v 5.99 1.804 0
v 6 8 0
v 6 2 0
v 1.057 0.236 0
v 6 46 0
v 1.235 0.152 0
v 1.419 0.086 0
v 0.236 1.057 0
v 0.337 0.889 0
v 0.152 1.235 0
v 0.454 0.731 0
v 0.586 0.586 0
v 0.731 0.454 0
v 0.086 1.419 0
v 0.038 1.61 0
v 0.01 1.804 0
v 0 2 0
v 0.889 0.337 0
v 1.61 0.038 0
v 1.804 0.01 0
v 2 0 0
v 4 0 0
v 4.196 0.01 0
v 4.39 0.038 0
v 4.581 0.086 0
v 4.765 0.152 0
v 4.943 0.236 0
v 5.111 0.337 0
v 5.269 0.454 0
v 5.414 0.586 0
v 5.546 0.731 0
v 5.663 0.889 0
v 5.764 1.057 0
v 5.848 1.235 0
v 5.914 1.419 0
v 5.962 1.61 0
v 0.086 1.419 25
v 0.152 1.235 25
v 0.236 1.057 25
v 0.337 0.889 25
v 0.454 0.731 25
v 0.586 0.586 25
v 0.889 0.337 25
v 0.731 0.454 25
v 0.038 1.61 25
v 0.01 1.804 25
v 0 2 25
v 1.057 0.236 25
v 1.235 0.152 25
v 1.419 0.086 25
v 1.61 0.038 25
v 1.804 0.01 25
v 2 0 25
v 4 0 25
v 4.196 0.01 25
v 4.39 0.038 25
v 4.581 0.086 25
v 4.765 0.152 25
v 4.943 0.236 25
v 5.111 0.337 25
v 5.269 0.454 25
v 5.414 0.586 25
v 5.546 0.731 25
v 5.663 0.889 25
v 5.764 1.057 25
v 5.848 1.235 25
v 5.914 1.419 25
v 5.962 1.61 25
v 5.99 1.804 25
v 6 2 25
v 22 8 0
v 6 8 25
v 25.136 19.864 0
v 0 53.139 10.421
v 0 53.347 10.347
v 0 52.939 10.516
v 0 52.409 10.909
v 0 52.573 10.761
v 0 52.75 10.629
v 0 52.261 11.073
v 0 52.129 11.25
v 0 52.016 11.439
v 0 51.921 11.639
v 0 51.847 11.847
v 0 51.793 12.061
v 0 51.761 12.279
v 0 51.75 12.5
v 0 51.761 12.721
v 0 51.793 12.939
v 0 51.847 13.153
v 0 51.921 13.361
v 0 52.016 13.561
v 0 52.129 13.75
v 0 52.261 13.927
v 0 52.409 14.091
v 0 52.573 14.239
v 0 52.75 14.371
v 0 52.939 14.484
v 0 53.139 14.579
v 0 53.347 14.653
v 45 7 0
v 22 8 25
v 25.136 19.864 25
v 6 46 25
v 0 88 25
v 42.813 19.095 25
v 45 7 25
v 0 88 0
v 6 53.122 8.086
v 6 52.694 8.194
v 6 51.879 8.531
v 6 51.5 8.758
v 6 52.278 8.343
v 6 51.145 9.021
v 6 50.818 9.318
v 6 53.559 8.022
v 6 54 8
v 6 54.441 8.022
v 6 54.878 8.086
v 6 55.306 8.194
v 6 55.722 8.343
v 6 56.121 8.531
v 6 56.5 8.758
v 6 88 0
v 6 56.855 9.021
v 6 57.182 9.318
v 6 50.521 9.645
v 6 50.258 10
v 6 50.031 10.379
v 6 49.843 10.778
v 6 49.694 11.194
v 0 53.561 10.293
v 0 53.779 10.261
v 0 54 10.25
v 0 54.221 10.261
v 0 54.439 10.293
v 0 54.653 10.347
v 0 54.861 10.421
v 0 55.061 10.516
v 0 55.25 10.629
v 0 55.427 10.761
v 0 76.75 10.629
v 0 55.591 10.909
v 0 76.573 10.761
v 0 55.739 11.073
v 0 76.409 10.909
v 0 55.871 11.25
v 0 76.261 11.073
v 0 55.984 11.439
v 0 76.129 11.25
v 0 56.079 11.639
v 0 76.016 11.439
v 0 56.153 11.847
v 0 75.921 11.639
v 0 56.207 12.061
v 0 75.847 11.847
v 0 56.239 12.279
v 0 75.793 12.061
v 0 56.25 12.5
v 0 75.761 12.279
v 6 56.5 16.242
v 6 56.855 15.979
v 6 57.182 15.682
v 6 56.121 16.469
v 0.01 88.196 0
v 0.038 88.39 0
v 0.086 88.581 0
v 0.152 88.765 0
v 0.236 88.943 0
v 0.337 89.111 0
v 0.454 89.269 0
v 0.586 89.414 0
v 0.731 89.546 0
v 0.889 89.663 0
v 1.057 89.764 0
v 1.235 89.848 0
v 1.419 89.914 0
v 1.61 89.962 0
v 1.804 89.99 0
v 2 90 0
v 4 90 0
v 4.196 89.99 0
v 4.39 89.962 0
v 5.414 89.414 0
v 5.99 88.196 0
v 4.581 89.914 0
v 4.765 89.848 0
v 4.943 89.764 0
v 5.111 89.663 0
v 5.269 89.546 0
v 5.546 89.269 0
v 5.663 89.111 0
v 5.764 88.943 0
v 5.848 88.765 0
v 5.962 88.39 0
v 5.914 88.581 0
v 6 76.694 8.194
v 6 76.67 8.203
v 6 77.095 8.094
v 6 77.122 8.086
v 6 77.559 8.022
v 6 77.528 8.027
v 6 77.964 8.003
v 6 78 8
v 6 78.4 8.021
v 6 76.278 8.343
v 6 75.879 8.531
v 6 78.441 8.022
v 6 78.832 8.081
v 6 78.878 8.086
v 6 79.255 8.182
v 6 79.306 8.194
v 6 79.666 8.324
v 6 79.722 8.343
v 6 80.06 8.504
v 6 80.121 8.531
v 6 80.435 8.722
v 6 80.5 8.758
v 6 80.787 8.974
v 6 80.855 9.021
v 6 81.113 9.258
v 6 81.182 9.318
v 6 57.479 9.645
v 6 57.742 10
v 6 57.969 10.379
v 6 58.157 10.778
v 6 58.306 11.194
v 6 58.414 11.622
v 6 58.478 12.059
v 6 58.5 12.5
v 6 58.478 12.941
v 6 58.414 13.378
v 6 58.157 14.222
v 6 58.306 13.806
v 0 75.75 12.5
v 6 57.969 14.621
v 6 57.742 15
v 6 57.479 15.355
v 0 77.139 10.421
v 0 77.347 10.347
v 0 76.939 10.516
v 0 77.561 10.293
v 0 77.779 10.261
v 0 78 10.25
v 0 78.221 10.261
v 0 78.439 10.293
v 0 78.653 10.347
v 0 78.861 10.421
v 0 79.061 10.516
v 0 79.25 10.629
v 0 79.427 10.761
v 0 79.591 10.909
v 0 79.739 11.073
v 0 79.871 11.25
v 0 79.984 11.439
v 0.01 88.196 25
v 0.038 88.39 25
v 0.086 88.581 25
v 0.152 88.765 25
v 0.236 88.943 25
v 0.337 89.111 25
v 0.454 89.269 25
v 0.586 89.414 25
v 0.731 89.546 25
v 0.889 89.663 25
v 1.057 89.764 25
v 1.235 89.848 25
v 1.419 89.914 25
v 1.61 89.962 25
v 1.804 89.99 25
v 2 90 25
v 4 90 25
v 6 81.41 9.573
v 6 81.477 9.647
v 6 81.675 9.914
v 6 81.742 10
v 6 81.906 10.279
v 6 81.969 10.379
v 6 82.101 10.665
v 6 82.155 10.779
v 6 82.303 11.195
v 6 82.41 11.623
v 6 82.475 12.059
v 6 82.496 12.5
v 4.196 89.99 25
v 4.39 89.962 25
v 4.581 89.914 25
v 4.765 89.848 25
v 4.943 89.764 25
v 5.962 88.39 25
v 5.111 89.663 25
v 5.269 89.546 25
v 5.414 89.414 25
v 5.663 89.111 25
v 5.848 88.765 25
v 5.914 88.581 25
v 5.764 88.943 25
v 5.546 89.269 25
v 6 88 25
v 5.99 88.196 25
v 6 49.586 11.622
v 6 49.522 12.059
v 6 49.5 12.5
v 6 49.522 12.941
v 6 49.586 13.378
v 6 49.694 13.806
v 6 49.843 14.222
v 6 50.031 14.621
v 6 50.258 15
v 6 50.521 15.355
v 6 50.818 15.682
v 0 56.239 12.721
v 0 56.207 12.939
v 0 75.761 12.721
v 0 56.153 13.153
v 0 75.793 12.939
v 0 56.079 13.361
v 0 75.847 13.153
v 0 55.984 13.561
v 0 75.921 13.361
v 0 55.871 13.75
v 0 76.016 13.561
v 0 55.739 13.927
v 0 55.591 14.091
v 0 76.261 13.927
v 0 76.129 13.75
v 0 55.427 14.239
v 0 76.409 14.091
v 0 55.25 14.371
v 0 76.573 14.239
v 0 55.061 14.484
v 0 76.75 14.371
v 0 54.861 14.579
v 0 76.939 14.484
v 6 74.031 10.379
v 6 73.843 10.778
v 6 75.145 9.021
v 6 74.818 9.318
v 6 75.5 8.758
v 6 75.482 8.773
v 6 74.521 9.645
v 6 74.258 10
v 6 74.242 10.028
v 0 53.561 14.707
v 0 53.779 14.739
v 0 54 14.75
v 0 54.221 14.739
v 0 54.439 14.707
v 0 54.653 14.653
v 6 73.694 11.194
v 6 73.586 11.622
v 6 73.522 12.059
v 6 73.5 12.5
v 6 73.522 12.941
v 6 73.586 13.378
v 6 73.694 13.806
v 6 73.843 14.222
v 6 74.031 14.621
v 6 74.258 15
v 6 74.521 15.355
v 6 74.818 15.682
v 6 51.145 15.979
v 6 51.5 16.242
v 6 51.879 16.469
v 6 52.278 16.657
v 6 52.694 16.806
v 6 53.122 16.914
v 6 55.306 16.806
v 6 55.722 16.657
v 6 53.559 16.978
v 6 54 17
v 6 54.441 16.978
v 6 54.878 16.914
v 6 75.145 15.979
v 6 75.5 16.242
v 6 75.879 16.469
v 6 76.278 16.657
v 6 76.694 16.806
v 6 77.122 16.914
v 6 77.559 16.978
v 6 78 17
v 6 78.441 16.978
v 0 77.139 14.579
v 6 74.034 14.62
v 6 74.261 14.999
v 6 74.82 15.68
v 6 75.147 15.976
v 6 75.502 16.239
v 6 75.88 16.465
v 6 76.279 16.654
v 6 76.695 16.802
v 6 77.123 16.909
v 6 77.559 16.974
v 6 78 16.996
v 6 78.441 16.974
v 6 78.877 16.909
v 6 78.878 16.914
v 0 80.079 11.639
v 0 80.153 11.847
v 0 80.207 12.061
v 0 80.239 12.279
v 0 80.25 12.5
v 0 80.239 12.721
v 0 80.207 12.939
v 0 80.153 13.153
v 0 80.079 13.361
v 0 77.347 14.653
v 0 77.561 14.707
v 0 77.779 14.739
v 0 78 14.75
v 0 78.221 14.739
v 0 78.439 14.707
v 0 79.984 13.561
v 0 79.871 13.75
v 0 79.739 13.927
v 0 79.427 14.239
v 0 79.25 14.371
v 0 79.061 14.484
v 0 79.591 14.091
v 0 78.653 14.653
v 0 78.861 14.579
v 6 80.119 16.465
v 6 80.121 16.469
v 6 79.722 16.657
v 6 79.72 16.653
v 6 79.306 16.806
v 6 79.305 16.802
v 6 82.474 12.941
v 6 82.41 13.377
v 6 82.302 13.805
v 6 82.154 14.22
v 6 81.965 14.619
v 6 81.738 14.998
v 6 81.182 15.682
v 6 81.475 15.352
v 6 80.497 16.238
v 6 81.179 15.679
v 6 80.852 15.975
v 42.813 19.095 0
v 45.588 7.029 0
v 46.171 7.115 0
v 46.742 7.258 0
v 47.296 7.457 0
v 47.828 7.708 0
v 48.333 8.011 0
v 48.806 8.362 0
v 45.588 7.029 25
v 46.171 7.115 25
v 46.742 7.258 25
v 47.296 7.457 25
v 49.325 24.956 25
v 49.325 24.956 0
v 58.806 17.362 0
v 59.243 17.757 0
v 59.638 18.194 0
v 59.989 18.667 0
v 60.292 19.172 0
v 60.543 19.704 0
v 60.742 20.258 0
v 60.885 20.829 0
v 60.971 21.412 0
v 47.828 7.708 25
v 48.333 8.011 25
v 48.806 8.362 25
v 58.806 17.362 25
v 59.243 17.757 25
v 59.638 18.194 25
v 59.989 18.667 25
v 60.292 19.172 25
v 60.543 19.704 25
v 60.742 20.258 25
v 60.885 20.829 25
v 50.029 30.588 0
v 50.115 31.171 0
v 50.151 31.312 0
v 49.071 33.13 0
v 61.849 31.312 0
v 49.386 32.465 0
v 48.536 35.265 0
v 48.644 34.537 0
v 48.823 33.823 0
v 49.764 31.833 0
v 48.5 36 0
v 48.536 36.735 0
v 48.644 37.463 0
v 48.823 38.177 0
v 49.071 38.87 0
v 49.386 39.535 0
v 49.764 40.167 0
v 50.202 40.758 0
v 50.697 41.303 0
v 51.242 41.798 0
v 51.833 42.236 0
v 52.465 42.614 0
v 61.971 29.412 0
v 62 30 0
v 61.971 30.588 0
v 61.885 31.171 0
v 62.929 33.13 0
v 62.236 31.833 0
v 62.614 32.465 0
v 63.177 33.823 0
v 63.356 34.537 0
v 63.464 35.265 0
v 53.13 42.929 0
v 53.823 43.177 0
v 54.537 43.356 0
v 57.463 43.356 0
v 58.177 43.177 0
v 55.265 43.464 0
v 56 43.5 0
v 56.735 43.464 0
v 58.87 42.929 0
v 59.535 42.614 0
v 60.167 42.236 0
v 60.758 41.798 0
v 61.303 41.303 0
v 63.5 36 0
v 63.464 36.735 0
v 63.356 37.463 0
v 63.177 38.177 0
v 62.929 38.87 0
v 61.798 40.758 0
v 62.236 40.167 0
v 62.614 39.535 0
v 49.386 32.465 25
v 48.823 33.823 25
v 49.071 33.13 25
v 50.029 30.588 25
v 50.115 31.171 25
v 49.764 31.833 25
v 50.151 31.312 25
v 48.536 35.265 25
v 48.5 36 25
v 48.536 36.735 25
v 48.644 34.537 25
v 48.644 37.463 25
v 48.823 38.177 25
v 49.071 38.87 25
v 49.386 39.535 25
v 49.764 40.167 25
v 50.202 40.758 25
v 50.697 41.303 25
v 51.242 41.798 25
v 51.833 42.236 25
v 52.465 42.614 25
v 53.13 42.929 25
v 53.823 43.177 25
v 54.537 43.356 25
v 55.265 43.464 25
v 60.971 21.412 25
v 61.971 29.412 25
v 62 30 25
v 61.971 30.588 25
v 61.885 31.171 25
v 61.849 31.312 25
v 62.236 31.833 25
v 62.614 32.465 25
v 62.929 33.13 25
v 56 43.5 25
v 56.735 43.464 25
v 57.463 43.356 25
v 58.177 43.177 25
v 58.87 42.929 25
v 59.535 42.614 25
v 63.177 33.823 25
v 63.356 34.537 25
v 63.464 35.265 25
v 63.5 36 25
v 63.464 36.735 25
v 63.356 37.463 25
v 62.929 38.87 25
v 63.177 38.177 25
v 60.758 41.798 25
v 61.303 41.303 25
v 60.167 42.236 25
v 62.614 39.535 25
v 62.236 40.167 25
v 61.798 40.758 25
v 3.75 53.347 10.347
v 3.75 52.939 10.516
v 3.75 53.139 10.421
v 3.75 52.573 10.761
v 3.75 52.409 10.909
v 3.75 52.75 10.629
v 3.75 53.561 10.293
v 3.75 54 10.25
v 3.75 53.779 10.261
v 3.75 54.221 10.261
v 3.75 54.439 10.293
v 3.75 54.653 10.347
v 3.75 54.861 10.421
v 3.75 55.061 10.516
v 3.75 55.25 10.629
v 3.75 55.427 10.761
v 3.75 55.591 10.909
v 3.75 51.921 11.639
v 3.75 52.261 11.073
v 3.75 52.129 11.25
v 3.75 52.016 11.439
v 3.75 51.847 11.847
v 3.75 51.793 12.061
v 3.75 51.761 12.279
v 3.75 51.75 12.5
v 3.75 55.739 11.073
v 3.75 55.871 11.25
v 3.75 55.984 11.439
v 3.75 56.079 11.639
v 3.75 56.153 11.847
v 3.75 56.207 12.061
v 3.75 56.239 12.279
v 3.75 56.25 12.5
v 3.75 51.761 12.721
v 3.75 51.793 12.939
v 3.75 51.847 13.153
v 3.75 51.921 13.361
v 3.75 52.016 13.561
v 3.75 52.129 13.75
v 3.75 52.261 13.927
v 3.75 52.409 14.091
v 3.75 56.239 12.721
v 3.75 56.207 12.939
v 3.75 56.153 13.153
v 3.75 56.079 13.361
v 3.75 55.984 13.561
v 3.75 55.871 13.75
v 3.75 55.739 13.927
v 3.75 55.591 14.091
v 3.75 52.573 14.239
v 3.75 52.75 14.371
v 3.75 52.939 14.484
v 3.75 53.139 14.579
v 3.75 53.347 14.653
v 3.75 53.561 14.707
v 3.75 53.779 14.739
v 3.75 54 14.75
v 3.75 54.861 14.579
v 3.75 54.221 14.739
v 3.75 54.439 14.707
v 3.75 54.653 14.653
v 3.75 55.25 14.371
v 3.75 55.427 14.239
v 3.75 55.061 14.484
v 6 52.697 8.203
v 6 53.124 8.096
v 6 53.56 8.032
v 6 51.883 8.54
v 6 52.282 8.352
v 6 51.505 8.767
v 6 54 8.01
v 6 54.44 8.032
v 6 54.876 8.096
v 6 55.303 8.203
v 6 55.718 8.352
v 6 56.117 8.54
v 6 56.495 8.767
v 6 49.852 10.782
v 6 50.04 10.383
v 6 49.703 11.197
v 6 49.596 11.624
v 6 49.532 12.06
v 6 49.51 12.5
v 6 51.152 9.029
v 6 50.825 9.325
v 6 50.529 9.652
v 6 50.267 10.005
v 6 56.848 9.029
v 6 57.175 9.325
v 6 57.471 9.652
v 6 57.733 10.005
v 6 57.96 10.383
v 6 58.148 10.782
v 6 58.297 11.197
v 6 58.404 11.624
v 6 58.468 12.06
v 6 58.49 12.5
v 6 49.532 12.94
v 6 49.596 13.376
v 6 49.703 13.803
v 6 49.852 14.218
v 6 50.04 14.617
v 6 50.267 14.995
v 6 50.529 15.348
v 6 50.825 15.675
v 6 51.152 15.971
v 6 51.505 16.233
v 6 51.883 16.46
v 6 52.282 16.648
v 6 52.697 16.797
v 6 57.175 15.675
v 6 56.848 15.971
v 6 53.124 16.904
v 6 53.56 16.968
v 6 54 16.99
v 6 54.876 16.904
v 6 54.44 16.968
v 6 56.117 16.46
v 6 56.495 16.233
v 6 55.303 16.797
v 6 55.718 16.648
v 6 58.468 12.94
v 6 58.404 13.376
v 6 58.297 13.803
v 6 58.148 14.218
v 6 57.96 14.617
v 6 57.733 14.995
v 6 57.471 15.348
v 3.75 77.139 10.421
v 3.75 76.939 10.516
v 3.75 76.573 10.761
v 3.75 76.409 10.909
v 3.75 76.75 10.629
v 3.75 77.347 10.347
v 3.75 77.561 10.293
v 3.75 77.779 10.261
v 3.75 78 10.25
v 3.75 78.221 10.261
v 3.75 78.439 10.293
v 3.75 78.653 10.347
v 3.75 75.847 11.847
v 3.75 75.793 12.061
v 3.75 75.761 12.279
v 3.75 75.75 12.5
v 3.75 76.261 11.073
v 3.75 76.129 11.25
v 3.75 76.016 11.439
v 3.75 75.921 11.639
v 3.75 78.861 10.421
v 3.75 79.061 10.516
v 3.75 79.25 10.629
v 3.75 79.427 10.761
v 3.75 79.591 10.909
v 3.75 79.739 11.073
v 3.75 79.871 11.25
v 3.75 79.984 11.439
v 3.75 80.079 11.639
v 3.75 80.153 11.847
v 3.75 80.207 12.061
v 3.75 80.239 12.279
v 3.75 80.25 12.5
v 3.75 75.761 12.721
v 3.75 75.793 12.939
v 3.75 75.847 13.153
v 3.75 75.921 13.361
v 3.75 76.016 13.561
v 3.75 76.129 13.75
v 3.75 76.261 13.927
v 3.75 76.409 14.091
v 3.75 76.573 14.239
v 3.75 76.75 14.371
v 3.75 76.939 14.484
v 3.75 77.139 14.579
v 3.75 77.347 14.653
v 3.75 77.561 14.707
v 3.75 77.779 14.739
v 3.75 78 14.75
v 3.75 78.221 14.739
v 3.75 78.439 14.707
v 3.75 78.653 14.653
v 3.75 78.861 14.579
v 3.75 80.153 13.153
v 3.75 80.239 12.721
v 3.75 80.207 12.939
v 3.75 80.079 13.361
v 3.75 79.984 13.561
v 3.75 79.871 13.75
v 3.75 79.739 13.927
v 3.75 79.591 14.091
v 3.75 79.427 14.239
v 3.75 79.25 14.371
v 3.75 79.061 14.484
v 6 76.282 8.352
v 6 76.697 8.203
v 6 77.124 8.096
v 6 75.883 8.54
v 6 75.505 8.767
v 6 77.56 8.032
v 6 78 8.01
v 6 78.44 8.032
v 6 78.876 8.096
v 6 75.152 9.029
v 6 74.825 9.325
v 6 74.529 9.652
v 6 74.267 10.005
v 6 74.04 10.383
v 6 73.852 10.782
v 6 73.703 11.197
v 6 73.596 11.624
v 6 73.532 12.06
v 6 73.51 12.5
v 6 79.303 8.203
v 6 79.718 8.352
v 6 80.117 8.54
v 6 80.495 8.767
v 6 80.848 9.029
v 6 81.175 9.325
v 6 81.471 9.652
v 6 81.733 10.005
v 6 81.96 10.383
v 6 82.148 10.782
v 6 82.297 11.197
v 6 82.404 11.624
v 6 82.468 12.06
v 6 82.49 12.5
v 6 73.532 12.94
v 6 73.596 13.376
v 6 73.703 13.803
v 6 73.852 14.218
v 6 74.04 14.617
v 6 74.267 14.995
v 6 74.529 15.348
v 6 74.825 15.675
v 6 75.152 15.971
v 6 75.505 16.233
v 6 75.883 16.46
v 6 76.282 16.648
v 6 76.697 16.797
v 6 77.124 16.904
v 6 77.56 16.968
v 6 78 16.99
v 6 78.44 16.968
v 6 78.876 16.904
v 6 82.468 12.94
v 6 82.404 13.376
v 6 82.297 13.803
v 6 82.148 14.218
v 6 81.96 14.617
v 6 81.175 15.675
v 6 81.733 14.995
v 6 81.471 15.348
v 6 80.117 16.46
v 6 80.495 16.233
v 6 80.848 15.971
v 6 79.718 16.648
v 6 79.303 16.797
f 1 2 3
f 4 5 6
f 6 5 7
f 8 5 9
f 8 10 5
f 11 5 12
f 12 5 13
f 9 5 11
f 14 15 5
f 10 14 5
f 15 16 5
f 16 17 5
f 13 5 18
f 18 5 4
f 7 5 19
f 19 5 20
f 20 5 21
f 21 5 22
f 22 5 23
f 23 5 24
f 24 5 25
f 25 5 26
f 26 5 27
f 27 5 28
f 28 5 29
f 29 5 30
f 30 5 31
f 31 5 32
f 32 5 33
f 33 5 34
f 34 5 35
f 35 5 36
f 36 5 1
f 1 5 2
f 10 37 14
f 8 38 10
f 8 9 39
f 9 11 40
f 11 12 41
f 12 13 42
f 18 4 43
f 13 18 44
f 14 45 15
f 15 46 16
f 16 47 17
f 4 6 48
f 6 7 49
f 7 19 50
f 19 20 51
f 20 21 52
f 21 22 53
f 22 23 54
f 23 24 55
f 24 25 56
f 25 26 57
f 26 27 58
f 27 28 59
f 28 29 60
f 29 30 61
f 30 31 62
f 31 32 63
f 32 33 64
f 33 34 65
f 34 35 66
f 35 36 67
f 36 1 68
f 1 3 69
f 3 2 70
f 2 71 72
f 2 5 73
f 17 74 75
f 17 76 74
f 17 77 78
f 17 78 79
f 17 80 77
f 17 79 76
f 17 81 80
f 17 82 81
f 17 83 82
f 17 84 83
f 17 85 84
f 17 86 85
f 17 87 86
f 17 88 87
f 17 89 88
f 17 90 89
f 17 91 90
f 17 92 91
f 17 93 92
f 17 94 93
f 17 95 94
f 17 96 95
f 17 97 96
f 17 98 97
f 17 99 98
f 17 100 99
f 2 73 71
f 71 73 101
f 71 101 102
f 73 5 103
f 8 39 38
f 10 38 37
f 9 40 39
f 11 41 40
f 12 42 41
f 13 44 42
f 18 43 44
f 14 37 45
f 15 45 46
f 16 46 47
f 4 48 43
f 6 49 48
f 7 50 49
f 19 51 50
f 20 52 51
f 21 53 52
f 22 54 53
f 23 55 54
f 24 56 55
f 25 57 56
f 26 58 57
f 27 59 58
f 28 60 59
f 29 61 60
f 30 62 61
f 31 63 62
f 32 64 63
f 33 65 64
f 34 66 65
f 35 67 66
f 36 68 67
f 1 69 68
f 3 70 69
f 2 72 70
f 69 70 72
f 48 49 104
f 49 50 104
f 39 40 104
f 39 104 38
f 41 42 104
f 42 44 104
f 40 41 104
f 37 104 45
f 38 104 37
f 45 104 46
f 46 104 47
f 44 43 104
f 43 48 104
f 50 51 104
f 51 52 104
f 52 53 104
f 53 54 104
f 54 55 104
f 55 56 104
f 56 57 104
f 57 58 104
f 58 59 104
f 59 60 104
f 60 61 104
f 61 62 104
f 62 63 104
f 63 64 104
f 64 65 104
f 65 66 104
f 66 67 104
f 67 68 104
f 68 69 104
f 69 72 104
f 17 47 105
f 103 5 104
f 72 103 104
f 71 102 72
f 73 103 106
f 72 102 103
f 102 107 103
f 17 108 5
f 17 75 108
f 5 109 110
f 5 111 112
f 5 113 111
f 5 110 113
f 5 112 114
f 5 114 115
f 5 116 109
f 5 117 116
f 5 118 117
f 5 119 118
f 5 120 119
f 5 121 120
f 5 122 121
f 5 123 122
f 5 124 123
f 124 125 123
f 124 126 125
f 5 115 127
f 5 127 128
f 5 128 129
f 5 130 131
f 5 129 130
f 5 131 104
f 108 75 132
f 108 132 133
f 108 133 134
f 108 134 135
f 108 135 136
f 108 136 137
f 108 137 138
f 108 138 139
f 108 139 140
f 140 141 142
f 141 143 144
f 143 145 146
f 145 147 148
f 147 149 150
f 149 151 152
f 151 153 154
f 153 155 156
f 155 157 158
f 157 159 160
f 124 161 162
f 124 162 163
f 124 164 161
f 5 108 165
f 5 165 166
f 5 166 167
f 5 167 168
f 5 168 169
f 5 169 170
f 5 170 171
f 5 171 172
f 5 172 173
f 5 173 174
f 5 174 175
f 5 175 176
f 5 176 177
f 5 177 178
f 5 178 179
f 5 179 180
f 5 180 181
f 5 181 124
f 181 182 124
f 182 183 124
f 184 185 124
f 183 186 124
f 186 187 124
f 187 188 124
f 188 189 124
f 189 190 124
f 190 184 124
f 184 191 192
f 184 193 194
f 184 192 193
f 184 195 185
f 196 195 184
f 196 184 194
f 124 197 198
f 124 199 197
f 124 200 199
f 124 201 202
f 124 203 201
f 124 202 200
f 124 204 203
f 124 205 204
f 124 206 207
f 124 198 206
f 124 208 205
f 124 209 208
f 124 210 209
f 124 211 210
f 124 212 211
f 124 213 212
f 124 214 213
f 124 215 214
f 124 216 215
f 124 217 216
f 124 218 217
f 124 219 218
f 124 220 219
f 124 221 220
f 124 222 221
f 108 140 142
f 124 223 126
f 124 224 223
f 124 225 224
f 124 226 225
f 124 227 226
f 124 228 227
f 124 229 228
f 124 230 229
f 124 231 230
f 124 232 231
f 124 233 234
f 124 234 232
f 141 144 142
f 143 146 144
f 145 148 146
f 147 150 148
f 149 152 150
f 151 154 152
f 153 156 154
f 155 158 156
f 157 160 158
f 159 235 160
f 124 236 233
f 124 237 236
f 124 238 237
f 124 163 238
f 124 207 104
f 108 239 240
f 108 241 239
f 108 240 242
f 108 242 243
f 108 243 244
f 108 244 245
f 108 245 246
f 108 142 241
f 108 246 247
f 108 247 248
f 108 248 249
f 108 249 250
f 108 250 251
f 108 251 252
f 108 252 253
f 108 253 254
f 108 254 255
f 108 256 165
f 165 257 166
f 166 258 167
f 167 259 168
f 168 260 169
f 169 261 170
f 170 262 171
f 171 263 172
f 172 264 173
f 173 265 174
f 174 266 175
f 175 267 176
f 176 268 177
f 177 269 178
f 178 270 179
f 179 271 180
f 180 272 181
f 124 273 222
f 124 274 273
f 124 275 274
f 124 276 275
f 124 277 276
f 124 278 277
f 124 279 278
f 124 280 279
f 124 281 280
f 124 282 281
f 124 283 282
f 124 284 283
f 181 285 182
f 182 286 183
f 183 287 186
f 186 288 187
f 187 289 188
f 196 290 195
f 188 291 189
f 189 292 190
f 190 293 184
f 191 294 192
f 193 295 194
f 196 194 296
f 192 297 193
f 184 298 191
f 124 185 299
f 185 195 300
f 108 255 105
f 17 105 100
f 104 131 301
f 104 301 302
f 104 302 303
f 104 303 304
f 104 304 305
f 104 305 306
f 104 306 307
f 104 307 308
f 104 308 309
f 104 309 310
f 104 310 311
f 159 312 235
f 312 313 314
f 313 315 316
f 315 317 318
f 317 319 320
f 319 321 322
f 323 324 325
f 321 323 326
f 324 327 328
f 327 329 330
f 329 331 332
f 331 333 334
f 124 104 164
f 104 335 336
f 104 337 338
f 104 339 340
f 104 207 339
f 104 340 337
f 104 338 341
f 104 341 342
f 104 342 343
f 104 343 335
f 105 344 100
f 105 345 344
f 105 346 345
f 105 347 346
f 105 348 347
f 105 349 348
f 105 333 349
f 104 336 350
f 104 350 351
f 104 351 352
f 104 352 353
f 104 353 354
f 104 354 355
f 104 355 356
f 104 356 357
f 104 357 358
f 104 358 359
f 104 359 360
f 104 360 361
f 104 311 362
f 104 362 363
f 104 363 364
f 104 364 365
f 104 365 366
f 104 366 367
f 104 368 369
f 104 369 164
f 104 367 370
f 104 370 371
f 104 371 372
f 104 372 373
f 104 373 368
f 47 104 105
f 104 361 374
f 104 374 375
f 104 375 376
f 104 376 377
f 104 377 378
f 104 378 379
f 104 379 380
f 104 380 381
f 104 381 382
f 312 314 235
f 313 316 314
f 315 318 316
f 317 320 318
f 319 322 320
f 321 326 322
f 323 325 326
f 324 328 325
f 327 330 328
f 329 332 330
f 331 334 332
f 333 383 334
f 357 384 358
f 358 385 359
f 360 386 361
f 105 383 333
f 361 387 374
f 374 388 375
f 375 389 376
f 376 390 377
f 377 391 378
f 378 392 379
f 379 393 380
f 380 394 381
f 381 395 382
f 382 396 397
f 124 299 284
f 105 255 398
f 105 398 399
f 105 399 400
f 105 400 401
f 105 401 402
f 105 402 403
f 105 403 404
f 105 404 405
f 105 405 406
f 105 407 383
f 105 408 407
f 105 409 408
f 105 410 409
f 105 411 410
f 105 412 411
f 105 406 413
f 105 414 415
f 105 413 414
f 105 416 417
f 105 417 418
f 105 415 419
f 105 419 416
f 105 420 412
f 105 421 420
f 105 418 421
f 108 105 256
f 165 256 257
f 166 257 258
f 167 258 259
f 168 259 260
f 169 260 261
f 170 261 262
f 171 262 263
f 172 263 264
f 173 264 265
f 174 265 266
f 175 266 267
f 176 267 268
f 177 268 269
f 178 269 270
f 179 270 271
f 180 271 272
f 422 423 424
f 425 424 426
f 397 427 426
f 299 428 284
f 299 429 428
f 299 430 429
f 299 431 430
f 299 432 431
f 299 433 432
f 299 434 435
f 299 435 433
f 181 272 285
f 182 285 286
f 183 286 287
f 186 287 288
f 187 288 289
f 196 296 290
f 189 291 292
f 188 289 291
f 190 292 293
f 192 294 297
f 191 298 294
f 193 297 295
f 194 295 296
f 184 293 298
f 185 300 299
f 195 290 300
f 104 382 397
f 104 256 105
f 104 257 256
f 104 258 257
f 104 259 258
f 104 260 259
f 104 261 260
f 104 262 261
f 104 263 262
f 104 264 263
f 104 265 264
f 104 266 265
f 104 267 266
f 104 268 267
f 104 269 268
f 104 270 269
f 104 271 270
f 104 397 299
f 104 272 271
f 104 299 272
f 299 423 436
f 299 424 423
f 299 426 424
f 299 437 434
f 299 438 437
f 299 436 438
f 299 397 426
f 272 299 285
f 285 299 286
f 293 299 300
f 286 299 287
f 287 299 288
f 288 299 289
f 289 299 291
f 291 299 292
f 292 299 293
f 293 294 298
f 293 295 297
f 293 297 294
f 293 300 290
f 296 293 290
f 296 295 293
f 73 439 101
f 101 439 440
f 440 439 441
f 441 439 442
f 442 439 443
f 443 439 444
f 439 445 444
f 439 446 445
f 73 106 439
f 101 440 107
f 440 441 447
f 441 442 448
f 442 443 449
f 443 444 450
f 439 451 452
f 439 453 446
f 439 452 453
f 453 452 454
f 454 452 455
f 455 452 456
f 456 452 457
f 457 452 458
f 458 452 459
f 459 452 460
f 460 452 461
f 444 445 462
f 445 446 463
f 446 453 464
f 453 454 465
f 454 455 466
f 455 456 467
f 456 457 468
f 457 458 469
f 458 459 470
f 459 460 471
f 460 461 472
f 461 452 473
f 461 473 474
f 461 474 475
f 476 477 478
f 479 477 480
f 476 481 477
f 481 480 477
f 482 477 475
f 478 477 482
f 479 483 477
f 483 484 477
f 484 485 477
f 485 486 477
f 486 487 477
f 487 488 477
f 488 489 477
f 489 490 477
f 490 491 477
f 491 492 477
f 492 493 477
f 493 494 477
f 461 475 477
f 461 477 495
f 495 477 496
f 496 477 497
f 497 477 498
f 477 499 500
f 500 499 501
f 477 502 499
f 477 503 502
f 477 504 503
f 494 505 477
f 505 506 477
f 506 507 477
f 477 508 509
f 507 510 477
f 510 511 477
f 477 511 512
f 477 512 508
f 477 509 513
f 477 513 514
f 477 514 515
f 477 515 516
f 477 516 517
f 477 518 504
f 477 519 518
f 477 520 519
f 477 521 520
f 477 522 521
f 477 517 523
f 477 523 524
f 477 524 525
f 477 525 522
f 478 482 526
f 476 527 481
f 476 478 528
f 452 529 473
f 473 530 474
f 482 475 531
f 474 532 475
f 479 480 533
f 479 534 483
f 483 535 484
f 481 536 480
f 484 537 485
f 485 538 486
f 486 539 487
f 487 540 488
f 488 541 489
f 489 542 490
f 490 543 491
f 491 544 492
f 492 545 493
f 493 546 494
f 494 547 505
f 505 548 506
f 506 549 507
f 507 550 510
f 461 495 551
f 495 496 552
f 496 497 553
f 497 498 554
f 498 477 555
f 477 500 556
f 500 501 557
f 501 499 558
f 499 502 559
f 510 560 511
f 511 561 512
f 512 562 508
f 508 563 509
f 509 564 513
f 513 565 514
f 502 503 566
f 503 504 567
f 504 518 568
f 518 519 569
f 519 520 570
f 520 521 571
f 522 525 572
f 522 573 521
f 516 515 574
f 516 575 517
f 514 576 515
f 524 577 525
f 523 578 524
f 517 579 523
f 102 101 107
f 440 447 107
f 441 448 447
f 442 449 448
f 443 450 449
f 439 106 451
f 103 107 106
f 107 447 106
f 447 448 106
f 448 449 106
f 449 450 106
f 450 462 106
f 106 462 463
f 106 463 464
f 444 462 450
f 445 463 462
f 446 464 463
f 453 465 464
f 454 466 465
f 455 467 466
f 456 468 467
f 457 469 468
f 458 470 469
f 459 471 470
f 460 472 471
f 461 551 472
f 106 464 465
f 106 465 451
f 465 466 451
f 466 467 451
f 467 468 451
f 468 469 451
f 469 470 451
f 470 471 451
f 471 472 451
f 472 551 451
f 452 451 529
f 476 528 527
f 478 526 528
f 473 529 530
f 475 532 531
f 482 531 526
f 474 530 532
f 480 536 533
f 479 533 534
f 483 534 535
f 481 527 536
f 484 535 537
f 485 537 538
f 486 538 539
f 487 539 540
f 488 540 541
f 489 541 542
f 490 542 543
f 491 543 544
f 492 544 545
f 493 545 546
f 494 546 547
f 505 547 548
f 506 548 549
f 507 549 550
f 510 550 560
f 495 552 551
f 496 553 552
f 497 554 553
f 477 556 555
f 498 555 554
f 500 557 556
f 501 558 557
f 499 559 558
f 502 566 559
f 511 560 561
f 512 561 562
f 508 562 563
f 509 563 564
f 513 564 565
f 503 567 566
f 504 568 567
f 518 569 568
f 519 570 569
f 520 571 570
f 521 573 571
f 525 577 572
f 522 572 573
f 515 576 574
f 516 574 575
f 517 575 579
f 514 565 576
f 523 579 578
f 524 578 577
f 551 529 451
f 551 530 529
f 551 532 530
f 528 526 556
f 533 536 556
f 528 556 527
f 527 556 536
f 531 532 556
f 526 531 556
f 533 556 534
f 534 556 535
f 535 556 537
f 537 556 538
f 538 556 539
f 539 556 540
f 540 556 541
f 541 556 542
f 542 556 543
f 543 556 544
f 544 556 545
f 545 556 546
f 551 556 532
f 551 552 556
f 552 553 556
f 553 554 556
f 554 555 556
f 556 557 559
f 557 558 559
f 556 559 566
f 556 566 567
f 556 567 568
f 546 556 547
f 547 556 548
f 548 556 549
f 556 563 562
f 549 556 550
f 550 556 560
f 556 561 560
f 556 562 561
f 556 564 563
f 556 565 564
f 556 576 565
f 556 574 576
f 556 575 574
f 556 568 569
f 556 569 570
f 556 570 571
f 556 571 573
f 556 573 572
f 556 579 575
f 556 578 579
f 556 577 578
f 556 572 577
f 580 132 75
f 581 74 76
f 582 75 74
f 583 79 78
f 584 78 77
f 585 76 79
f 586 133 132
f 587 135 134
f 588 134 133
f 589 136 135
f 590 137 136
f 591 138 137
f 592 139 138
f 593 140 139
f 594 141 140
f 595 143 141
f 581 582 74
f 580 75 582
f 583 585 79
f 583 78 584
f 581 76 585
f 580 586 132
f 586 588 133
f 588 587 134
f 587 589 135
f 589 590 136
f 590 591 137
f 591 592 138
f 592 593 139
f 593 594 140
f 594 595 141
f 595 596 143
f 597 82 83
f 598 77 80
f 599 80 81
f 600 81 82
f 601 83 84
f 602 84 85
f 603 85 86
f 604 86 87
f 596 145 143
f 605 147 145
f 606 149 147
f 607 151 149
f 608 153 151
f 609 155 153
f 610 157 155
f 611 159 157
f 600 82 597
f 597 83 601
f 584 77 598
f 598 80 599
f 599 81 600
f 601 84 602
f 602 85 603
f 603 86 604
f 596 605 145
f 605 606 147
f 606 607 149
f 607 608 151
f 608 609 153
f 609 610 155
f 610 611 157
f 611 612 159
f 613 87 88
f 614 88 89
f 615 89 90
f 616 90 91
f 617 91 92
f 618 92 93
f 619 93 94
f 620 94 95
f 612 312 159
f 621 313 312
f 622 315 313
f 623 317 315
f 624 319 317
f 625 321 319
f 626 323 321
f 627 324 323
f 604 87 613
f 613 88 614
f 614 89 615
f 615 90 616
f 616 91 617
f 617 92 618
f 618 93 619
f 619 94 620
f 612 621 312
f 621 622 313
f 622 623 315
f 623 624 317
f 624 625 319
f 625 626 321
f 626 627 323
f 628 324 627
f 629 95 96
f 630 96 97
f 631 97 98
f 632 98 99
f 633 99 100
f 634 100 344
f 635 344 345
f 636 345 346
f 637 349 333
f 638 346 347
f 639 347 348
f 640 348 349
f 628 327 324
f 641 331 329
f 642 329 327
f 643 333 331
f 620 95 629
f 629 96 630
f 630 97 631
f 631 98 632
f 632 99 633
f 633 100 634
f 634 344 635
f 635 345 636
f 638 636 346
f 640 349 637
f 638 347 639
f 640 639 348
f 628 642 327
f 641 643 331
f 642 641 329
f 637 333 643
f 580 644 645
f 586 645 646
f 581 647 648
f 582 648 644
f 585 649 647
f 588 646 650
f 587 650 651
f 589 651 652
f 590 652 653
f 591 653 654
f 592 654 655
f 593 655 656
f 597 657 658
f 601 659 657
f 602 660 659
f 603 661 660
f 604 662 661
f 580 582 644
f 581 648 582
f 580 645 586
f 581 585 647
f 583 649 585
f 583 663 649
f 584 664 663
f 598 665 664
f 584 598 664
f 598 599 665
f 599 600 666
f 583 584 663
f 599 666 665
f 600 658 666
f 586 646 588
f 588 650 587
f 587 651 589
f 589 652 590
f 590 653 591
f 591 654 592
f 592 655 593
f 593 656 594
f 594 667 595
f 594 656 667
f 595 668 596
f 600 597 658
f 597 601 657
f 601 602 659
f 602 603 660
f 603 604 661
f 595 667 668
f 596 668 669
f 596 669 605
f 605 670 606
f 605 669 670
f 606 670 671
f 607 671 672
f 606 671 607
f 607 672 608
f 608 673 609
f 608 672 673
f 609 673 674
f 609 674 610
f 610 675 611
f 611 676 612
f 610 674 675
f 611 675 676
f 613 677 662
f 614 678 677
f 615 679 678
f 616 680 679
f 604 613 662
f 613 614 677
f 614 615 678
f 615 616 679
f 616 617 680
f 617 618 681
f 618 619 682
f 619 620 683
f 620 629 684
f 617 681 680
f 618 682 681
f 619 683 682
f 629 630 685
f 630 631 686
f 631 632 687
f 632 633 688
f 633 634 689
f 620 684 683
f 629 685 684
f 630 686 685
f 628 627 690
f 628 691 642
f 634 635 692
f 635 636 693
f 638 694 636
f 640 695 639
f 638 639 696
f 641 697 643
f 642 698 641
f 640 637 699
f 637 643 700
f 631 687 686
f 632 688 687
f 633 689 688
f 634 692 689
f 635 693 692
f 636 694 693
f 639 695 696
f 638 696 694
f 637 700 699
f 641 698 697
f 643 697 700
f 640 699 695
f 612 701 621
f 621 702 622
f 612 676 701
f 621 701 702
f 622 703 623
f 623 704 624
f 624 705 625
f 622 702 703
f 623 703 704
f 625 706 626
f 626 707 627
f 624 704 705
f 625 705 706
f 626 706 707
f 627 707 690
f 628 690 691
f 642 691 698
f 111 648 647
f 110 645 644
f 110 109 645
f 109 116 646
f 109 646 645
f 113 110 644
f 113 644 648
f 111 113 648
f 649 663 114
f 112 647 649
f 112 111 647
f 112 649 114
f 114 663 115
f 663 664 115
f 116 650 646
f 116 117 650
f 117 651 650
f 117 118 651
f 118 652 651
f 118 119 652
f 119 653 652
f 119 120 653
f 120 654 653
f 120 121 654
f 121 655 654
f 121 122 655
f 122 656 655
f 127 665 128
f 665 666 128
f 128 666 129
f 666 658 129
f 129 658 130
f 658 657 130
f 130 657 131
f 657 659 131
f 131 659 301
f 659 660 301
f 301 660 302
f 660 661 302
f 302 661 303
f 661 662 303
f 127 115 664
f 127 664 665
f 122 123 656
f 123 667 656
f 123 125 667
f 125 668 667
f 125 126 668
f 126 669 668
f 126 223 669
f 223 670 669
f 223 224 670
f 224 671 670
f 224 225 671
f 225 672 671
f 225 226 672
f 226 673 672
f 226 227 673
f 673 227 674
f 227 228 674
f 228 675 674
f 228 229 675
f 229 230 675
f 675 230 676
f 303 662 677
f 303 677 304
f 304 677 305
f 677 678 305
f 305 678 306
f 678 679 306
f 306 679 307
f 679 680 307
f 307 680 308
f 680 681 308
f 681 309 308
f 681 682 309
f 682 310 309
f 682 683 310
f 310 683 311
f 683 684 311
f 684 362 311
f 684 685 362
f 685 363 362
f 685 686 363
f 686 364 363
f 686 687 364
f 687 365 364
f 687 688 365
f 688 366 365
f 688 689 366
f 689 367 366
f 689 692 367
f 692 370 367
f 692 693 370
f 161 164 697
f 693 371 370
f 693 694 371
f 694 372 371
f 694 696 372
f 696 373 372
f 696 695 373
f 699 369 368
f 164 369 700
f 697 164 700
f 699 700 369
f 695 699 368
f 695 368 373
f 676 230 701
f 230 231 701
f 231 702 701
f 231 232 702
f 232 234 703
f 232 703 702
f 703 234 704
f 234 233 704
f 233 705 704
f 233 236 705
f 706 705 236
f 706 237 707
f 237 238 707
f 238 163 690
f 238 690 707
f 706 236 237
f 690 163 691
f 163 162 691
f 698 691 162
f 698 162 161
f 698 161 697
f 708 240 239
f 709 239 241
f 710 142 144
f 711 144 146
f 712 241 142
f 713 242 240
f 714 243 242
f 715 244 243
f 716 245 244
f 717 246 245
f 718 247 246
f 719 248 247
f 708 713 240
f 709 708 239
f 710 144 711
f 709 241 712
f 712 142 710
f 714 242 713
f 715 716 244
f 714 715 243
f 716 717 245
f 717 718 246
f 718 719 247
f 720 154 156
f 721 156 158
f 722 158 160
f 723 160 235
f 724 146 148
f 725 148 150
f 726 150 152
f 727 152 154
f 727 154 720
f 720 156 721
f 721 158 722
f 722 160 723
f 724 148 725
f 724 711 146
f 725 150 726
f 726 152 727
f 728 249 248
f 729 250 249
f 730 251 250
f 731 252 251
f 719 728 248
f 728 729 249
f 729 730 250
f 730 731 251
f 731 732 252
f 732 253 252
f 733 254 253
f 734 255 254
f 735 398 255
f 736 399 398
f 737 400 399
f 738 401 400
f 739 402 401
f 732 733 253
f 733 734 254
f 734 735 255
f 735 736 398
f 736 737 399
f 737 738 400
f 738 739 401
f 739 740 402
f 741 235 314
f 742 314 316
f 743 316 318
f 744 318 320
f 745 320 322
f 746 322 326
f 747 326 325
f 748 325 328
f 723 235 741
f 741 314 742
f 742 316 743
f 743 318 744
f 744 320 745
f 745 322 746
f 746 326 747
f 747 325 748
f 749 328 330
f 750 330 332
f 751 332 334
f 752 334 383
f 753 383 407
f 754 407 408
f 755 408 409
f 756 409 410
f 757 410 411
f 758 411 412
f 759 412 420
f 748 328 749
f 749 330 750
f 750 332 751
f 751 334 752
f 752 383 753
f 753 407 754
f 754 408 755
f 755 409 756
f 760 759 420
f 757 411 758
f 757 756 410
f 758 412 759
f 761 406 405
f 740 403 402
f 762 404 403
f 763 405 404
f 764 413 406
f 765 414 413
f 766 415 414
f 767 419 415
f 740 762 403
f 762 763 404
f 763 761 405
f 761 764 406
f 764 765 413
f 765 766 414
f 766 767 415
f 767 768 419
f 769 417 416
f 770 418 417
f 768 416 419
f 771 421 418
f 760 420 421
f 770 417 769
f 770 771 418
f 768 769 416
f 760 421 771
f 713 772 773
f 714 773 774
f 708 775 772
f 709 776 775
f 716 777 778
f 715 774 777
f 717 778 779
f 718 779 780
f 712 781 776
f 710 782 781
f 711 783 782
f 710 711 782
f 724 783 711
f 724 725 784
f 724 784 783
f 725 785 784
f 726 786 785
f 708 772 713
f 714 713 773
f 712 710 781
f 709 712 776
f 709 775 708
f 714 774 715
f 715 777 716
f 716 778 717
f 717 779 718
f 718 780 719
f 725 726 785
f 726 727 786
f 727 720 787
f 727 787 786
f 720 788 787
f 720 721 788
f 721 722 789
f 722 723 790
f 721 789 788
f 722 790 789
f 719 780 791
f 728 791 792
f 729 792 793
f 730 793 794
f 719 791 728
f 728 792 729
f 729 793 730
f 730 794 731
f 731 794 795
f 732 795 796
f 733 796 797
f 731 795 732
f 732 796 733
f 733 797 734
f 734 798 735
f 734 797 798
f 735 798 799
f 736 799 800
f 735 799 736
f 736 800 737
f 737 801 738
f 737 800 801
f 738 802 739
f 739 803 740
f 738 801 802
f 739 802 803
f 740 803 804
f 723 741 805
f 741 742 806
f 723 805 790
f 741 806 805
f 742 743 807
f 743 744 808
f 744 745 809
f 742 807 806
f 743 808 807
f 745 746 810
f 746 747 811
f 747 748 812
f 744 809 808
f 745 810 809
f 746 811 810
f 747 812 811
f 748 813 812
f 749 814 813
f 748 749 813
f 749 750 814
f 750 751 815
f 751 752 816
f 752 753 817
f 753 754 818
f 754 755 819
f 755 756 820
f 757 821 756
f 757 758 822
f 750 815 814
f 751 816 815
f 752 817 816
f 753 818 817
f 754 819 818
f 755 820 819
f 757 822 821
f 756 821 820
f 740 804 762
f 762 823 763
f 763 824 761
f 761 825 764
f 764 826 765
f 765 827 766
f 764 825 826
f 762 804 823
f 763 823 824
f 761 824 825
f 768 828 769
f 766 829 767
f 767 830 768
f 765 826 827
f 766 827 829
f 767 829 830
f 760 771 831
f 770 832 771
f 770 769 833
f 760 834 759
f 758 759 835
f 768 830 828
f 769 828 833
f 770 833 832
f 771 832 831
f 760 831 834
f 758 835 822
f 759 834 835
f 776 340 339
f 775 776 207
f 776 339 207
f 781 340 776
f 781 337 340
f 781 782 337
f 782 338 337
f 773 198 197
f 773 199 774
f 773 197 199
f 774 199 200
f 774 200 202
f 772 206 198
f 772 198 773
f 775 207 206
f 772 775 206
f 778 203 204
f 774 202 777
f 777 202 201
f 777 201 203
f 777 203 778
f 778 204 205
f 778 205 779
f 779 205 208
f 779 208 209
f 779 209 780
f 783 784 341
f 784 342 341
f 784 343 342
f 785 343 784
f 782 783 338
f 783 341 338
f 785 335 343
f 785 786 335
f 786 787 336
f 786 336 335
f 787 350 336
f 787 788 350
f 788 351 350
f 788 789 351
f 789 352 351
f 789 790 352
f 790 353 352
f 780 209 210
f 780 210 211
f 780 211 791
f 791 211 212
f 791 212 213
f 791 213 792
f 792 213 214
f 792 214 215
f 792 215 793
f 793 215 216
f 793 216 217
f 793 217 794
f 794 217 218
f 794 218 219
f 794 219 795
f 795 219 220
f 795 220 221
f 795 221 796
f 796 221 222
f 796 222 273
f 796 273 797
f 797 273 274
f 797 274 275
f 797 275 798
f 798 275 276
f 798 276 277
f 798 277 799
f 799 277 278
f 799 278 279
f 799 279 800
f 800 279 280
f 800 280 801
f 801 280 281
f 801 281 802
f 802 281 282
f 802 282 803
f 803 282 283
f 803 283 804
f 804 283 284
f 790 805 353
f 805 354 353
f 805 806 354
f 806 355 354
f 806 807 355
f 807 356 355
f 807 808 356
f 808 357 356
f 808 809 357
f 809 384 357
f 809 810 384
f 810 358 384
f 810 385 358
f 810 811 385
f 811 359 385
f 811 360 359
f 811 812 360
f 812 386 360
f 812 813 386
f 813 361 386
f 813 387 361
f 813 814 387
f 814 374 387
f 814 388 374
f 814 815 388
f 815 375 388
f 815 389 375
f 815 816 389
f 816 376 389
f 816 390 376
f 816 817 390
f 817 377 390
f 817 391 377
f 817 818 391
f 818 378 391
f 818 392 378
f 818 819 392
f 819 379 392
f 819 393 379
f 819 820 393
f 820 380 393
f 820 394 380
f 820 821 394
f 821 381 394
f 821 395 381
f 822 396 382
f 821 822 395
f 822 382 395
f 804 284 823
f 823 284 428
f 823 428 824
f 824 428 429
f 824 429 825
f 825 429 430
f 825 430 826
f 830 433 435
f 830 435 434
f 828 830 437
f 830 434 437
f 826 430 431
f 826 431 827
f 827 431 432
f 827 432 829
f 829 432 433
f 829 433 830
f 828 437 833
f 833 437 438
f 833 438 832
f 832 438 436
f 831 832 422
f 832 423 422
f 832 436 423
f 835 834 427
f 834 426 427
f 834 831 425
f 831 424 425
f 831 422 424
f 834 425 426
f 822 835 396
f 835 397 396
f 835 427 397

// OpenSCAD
// Porte-manteau mural — modèle paramétrique OpenSCAD
// Toutes les cotes sont en millimètres.
//
// Orientation : le modèle est déjà posé sur le flanc, prêt à imprimer.
// Les couches suivent la courbe du crochet, ce qui le rend bien plus
// solide que s'il était imprimé debout, et aucun support n'est nécessaire.

/* [Plaque murale] */
hauteur_plaque   = 90;   // hauteur contre le mur
epaisseur_plaque = 6;    // épaisseur de la plaque
largeur          = 25;   // largeur de la pièce (= hauteur d'impression)

/* [Crochet] */
avancee          = 55;   // distance entre le mur et le bout du crochet
rayon_bras       = 6;    // demi-épaisseur du bras (bras de 12 mm)
rayon_bouton     = 7.5;  // boule au bout du crochet
hauteur_bout     = 36;   // hauteur du bout relevé

/* [Vis] */
diametre_vis     = 4.5;  // vis de 4 mm
diametre_tete    = 9;    // tête fraisée
z_vis            = [54, 78]; // position des deux trous

$fn = 64;

module profil() {
    // plaque murale aux coins arrondis
    offset(r = 2) offset(delta = -2)
        square([epaisseur_plaque, hauteur_plaque]);

    // renfort entre la plaque et le bras
    hull() {
        translate([0, 8]) square([epaisseur_plaque, 38]);
        translate([22, 14]) circle(r = rayon_bras);
    }

    // bras : suite de segments arrondis
    points = [
        [epaisseur_plaque, 18],
        [22, 14],
        [avancee - 10, 13],
        [avancee, 22],
        [avancee + 1, hauteur_bout - 6]
    ];
    for (i = [0 : len(points) - 2])
        hull() {
            translate(points[i])     circle(r = rayon_bras);
            translate(points[i + 1]) circle(r = rayon_bras);
        }

    // boule au bout pour retenir les vêtements
    translate([avancee + 1, hauteur_bout]) circle(r = rayon_bouton);
}

module trou_vis(z) {
    // percé de part en part, fraisé du côté visible (x = épaisseur)
    translate([-1, z, largeur / 2]) rotate([0, 90, 0]) {
        cylinder(d = diametre_vis, h = epaisseur_plaque + 2);
        translate([0, 0, epaisseur_plaque + 1 - (diametre_tete - diametre_vis) / 2])
            cylinder(d1 = diametre_vis, d2 = diametre_tete,
                     h = (diametre_tete - diametre_vis) / 2 + 0.01);
        translate([0, 0, epaisseur_plaque + 1]) cylinder(d = diametre_tete, h = 5);
    }
}

difference() {
    linear_extrude(height = largeur) profil();
    for (z = z_vis) trou_vis(z);
}
